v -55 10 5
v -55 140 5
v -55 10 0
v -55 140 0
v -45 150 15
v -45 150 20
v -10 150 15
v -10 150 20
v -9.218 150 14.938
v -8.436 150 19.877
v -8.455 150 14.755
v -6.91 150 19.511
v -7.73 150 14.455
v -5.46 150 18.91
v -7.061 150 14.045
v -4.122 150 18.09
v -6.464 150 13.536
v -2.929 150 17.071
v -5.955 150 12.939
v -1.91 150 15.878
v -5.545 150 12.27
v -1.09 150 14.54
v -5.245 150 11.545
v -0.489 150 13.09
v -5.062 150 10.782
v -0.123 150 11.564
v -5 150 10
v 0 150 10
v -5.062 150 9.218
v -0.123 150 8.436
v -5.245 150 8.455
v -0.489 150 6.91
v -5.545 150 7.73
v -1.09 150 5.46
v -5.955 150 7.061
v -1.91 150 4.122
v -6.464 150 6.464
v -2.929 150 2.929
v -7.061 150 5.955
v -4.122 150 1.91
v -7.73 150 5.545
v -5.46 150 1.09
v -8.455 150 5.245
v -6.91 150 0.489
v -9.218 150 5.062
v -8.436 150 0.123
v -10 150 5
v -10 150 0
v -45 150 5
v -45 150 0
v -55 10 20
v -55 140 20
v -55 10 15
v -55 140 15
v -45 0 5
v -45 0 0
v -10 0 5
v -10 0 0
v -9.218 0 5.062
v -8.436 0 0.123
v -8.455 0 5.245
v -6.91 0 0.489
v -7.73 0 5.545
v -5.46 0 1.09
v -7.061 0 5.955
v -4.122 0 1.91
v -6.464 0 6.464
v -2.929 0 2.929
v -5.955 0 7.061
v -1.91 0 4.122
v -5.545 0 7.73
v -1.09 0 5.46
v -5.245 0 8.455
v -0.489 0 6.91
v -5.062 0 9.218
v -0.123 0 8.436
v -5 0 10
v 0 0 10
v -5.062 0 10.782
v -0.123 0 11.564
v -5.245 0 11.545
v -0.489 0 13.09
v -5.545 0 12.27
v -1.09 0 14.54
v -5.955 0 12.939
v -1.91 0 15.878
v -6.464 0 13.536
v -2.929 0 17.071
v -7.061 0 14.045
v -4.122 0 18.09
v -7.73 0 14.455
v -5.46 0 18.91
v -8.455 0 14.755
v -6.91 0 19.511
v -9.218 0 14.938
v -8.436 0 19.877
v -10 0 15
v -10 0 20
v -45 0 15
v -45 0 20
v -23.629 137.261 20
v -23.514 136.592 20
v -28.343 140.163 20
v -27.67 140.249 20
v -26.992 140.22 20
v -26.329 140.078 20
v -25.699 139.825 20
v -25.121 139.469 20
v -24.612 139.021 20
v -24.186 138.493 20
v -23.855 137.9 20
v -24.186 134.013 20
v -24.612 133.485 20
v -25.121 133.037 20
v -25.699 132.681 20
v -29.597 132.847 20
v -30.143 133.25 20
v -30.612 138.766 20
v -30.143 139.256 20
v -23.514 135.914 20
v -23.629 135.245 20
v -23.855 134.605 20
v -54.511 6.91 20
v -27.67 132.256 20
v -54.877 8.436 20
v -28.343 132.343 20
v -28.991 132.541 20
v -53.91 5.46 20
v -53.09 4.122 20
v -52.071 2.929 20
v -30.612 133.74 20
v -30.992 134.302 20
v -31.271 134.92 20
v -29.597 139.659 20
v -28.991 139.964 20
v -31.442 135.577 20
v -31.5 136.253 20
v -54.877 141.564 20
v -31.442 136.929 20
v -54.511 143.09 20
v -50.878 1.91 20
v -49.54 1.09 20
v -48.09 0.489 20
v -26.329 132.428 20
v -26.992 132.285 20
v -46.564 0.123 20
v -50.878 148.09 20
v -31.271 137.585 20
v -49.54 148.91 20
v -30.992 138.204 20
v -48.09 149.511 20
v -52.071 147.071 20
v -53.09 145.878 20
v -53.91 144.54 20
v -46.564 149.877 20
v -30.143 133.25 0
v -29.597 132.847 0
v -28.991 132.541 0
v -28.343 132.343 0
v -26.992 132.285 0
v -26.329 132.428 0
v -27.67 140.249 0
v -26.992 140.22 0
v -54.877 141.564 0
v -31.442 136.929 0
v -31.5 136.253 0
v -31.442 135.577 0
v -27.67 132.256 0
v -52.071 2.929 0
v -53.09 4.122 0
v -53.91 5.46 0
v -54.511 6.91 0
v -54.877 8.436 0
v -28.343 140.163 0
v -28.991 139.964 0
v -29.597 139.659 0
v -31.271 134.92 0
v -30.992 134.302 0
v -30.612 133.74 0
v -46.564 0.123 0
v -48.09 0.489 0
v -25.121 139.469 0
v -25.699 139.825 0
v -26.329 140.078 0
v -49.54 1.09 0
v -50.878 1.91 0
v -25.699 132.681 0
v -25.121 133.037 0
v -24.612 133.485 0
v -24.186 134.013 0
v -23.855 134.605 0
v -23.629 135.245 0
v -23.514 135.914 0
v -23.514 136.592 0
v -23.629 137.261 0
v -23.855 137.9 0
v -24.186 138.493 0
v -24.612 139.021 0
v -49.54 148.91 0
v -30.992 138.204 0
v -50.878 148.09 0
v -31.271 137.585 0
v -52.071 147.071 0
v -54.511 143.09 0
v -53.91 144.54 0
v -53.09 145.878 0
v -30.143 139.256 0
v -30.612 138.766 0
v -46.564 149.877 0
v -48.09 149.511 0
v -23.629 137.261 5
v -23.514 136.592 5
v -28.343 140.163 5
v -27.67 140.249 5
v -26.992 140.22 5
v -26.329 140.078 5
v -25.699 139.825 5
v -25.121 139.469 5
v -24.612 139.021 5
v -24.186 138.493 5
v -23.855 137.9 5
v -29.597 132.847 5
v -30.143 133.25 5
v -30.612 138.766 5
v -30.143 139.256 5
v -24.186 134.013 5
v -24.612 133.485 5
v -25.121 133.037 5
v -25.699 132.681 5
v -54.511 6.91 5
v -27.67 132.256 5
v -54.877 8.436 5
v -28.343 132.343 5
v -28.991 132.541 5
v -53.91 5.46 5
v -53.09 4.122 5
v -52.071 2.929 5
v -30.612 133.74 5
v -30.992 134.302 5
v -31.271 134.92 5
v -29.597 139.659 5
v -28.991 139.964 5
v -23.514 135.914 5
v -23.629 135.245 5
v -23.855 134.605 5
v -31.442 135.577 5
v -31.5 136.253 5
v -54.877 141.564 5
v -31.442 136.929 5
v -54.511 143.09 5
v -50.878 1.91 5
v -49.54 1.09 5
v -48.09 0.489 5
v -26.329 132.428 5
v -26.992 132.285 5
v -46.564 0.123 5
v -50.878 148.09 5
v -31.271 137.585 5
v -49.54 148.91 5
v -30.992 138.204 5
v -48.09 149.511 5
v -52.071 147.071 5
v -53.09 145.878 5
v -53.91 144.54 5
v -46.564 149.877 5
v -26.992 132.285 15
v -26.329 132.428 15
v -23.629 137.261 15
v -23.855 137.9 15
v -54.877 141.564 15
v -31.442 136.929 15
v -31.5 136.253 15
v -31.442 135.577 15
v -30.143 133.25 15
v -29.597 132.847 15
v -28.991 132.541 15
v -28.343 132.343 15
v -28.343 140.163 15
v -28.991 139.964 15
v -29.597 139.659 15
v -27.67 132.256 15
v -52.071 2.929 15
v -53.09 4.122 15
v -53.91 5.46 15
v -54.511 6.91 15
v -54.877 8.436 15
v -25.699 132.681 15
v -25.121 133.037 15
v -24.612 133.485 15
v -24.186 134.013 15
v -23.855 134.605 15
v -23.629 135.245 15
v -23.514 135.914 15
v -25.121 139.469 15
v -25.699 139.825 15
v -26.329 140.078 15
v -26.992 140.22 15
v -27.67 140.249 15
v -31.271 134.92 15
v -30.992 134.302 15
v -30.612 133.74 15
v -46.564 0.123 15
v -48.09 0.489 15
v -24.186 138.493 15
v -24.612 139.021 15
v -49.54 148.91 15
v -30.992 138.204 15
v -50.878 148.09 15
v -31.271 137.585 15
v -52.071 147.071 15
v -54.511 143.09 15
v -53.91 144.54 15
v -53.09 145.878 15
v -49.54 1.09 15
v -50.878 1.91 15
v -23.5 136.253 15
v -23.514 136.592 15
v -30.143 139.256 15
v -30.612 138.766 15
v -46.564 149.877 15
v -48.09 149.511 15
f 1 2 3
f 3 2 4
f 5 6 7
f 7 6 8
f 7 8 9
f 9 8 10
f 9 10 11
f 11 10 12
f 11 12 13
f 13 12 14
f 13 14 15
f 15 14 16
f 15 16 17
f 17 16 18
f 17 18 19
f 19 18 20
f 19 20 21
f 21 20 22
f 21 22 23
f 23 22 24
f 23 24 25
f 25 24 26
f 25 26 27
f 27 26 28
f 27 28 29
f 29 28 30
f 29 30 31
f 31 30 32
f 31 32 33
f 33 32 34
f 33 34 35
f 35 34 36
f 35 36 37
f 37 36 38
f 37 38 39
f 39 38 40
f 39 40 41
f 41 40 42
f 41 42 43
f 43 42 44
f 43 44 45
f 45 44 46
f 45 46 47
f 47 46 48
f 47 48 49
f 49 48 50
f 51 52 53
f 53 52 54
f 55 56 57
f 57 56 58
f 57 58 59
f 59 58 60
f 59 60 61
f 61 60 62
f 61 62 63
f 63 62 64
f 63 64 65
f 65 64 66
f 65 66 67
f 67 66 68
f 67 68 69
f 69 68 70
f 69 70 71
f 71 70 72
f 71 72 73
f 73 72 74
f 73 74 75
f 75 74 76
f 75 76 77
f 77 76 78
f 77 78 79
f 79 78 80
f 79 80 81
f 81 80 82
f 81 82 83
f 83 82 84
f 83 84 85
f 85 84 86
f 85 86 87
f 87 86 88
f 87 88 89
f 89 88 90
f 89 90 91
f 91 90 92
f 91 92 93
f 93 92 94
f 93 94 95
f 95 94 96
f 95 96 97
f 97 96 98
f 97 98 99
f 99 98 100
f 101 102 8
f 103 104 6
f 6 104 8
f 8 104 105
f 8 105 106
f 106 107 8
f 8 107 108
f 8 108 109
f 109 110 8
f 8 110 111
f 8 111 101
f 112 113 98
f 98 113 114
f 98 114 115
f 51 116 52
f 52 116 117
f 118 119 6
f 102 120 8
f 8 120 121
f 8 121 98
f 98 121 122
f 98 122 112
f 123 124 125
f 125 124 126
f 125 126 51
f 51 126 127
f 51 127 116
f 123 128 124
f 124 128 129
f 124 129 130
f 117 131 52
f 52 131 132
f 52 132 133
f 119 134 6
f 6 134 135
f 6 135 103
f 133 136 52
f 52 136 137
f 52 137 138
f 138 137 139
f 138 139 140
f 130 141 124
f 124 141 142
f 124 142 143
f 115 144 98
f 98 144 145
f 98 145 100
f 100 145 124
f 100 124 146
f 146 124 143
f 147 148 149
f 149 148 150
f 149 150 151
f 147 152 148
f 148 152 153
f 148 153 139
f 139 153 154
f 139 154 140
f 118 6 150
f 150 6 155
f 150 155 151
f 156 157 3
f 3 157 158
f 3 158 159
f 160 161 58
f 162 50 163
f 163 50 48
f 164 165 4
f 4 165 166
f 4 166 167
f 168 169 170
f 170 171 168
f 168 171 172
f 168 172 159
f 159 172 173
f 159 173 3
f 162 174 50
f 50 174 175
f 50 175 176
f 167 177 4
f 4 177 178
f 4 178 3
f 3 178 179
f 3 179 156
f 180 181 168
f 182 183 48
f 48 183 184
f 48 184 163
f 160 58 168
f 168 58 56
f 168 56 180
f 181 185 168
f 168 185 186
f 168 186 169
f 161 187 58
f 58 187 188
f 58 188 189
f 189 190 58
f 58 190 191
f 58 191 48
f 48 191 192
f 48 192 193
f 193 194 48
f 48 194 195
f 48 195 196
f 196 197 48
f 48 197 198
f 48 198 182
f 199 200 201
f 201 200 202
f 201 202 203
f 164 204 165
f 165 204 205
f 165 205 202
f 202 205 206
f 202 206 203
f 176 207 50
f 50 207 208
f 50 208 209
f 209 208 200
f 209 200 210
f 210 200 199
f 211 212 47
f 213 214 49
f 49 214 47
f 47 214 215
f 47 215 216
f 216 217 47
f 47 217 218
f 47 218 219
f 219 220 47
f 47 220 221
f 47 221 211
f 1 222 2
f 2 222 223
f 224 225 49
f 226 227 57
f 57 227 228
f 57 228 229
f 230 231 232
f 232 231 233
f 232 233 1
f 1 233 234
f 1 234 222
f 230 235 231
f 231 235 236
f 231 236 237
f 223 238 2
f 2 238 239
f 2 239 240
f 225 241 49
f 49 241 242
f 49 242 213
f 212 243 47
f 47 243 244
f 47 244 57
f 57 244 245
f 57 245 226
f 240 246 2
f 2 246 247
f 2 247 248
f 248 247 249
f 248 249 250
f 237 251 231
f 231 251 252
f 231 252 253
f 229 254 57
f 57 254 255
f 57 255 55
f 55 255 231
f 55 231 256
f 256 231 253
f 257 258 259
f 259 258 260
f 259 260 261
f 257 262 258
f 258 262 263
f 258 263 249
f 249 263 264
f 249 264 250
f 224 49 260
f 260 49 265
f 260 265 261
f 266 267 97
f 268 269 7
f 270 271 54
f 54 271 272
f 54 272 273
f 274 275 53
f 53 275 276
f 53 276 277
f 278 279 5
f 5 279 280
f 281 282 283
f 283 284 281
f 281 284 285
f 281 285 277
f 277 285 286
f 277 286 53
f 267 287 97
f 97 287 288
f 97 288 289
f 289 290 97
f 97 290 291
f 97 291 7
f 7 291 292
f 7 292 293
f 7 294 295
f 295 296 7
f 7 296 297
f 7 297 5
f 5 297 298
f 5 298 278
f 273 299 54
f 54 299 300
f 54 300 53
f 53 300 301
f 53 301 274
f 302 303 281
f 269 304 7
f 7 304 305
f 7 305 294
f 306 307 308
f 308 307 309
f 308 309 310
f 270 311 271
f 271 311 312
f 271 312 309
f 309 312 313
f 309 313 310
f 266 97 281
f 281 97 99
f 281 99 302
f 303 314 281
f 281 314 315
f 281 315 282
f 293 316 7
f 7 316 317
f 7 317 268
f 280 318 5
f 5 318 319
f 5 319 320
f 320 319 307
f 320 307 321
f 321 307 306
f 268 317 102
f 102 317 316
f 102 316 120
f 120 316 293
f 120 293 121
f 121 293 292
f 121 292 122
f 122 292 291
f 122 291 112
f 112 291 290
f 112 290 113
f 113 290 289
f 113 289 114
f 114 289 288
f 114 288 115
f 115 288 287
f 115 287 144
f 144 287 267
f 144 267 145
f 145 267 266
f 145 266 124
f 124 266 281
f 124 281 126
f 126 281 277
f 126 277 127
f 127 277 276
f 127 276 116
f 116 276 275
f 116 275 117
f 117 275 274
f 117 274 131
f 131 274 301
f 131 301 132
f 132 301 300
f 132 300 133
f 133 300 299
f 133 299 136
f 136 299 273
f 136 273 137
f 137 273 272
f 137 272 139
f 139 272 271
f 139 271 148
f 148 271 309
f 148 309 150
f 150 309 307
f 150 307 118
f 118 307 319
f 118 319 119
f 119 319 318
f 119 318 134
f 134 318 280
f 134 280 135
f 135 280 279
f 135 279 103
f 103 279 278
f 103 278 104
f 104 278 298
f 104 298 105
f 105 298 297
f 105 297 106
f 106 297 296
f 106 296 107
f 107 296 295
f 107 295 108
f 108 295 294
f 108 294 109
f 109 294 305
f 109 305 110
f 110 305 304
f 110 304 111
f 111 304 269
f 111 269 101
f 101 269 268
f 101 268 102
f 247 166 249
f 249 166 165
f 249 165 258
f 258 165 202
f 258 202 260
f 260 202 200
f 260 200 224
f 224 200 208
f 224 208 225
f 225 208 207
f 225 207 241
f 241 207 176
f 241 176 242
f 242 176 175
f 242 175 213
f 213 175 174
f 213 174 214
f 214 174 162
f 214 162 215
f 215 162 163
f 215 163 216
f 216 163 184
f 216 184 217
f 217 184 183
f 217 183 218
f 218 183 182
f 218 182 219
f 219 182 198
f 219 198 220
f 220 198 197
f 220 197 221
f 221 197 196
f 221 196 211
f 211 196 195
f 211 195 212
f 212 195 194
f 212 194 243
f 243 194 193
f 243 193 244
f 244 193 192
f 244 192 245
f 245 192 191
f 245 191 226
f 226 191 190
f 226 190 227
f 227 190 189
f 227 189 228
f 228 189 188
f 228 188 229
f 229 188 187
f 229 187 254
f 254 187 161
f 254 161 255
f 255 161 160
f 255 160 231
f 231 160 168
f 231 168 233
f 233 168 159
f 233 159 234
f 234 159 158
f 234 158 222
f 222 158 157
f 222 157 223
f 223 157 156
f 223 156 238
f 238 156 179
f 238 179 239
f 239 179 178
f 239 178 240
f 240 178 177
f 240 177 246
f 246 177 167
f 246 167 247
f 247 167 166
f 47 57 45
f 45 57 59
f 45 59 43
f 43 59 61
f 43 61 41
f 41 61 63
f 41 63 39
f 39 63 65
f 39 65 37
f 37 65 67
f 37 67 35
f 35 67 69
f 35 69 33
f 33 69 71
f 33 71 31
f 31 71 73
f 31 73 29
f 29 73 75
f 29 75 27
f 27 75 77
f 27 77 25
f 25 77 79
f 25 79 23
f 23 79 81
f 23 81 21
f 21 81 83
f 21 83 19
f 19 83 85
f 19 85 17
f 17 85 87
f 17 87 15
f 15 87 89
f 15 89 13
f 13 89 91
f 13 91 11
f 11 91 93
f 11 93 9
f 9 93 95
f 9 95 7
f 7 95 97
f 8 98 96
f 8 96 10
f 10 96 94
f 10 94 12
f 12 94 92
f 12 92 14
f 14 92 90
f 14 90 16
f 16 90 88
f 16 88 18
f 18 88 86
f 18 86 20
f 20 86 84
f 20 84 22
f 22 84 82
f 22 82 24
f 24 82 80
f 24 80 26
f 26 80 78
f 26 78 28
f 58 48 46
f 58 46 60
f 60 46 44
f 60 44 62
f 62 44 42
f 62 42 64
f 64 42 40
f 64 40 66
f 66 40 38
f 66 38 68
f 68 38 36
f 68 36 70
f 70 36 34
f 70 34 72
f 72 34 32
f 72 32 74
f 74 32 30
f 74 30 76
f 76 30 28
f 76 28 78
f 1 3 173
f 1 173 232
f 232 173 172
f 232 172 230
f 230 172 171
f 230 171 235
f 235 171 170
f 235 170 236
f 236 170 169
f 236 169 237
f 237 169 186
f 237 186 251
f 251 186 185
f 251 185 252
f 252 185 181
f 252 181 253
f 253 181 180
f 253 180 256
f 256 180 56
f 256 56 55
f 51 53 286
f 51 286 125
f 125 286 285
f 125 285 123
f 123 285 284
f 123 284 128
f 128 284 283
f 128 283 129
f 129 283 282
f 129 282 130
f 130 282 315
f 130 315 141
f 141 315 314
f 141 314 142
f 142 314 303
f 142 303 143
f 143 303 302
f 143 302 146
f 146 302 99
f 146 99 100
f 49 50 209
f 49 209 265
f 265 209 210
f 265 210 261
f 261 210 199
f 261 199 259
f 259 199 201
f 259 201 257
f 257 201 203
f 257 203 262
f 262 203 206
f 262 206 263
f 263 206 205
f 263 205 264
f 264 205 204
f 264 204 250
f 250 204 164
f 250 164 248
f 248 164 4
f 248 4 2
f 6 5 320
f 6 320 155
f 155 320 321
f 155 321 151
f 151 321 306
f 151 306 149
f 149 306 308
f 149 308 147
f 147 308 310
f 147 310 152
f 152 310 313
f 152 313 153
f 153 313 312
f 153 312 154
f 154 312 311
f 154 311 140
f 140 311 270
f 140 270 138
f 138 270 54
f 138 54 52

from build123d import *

# Parameters (mm, degrees)
ESQUISSE1_W             = 55
ESQUISSE1_H             = 150
BOSS_EXTRU_1_DEPTH      = 20
ESQUISSE2_W             = 50
ESQUISSE2_H             = 10
ENL_V_MAT_EXTRU_1_DEPTH = 162.012421881
ESQUISSE3_R             = 4
ENL_V_MAT_EXTRU_2_DEPTH = 20
CONG_1_R                = 5
CONG_2_R                = 10
CONG_3_R                = 10


with BuildPart() as part:
    # Esquisse1 → Boss.-Extru.1 (new body)
    with BuildSketch(Plane.XY):
        with Locations((-27.5, 75)):
            Rectangle(ESQUISSE1_W, ESQUISSE1_H)
    extrude(amount=BOSS_EXTRU_1_DEPTH)

    # Esquisse2 → Enlèv. mat.-Extru.1 (cut, through all)
    with BuildSketch(Plane(origin=(0, 150, 0), x_dir=(1, 0, 0), z_dir=(0, 1, 0))):
        with Locations((-30, -10)):
            Rectangle(ESQUISSE2_W, ESQUISSE2_H)
    extrude(amount=-ENL_V_MAT_EXTRU_1_DEPTH, mode=Mode.SUBTRACT)

    # Esquisse3 → Enlèv. mat.-Extru.2 (cut)
    with BuildSketch(Plane(origin=(0, 0, 0), x_dir=(-1, 0, 0), z_dir=(0, 0, -1))):
        with Locations((27.5, 136.25286599)):
            Circle(ESQUISSE3_R)
    extrude(amount=-ENL_V_MAT_EXTRU_2_DEPTH, mode=Mode.SUBTRACT)

    # Congé1
    cong_1_edges = [part.edges().sort_by_distance(p)[0] for p in [
        (-5, 75, 15),
        (-5, 75, 5),
    ]]
    fillet(cong_1_edges, radius=CONG_1_R - 0.0001)  # a hair under: the kernel refuses the full size

    # Congé2
    cong_2_edges = [part.edges().sort_by_distance(p)[0] for p in [
        (0, 75, 0),
        (0, 75, 20),
    ]]
    fillet(cong_2_edges, radius=CONG_2_R - 0.0001)  # a hair under: the kernel refuses the full size

    # Congé3
    cong_3_edges = [part.edges().sort_by_distance(p)[0] for p in [
        (-55, 0, 2.5),
        (-55, 150, 2.5),
        (-55, 0, 17.5),
        (-55, 150, 17.5),
    ]]
    fillet(cong_3_edges, radius=CONG_3_R)


solid = part.part
